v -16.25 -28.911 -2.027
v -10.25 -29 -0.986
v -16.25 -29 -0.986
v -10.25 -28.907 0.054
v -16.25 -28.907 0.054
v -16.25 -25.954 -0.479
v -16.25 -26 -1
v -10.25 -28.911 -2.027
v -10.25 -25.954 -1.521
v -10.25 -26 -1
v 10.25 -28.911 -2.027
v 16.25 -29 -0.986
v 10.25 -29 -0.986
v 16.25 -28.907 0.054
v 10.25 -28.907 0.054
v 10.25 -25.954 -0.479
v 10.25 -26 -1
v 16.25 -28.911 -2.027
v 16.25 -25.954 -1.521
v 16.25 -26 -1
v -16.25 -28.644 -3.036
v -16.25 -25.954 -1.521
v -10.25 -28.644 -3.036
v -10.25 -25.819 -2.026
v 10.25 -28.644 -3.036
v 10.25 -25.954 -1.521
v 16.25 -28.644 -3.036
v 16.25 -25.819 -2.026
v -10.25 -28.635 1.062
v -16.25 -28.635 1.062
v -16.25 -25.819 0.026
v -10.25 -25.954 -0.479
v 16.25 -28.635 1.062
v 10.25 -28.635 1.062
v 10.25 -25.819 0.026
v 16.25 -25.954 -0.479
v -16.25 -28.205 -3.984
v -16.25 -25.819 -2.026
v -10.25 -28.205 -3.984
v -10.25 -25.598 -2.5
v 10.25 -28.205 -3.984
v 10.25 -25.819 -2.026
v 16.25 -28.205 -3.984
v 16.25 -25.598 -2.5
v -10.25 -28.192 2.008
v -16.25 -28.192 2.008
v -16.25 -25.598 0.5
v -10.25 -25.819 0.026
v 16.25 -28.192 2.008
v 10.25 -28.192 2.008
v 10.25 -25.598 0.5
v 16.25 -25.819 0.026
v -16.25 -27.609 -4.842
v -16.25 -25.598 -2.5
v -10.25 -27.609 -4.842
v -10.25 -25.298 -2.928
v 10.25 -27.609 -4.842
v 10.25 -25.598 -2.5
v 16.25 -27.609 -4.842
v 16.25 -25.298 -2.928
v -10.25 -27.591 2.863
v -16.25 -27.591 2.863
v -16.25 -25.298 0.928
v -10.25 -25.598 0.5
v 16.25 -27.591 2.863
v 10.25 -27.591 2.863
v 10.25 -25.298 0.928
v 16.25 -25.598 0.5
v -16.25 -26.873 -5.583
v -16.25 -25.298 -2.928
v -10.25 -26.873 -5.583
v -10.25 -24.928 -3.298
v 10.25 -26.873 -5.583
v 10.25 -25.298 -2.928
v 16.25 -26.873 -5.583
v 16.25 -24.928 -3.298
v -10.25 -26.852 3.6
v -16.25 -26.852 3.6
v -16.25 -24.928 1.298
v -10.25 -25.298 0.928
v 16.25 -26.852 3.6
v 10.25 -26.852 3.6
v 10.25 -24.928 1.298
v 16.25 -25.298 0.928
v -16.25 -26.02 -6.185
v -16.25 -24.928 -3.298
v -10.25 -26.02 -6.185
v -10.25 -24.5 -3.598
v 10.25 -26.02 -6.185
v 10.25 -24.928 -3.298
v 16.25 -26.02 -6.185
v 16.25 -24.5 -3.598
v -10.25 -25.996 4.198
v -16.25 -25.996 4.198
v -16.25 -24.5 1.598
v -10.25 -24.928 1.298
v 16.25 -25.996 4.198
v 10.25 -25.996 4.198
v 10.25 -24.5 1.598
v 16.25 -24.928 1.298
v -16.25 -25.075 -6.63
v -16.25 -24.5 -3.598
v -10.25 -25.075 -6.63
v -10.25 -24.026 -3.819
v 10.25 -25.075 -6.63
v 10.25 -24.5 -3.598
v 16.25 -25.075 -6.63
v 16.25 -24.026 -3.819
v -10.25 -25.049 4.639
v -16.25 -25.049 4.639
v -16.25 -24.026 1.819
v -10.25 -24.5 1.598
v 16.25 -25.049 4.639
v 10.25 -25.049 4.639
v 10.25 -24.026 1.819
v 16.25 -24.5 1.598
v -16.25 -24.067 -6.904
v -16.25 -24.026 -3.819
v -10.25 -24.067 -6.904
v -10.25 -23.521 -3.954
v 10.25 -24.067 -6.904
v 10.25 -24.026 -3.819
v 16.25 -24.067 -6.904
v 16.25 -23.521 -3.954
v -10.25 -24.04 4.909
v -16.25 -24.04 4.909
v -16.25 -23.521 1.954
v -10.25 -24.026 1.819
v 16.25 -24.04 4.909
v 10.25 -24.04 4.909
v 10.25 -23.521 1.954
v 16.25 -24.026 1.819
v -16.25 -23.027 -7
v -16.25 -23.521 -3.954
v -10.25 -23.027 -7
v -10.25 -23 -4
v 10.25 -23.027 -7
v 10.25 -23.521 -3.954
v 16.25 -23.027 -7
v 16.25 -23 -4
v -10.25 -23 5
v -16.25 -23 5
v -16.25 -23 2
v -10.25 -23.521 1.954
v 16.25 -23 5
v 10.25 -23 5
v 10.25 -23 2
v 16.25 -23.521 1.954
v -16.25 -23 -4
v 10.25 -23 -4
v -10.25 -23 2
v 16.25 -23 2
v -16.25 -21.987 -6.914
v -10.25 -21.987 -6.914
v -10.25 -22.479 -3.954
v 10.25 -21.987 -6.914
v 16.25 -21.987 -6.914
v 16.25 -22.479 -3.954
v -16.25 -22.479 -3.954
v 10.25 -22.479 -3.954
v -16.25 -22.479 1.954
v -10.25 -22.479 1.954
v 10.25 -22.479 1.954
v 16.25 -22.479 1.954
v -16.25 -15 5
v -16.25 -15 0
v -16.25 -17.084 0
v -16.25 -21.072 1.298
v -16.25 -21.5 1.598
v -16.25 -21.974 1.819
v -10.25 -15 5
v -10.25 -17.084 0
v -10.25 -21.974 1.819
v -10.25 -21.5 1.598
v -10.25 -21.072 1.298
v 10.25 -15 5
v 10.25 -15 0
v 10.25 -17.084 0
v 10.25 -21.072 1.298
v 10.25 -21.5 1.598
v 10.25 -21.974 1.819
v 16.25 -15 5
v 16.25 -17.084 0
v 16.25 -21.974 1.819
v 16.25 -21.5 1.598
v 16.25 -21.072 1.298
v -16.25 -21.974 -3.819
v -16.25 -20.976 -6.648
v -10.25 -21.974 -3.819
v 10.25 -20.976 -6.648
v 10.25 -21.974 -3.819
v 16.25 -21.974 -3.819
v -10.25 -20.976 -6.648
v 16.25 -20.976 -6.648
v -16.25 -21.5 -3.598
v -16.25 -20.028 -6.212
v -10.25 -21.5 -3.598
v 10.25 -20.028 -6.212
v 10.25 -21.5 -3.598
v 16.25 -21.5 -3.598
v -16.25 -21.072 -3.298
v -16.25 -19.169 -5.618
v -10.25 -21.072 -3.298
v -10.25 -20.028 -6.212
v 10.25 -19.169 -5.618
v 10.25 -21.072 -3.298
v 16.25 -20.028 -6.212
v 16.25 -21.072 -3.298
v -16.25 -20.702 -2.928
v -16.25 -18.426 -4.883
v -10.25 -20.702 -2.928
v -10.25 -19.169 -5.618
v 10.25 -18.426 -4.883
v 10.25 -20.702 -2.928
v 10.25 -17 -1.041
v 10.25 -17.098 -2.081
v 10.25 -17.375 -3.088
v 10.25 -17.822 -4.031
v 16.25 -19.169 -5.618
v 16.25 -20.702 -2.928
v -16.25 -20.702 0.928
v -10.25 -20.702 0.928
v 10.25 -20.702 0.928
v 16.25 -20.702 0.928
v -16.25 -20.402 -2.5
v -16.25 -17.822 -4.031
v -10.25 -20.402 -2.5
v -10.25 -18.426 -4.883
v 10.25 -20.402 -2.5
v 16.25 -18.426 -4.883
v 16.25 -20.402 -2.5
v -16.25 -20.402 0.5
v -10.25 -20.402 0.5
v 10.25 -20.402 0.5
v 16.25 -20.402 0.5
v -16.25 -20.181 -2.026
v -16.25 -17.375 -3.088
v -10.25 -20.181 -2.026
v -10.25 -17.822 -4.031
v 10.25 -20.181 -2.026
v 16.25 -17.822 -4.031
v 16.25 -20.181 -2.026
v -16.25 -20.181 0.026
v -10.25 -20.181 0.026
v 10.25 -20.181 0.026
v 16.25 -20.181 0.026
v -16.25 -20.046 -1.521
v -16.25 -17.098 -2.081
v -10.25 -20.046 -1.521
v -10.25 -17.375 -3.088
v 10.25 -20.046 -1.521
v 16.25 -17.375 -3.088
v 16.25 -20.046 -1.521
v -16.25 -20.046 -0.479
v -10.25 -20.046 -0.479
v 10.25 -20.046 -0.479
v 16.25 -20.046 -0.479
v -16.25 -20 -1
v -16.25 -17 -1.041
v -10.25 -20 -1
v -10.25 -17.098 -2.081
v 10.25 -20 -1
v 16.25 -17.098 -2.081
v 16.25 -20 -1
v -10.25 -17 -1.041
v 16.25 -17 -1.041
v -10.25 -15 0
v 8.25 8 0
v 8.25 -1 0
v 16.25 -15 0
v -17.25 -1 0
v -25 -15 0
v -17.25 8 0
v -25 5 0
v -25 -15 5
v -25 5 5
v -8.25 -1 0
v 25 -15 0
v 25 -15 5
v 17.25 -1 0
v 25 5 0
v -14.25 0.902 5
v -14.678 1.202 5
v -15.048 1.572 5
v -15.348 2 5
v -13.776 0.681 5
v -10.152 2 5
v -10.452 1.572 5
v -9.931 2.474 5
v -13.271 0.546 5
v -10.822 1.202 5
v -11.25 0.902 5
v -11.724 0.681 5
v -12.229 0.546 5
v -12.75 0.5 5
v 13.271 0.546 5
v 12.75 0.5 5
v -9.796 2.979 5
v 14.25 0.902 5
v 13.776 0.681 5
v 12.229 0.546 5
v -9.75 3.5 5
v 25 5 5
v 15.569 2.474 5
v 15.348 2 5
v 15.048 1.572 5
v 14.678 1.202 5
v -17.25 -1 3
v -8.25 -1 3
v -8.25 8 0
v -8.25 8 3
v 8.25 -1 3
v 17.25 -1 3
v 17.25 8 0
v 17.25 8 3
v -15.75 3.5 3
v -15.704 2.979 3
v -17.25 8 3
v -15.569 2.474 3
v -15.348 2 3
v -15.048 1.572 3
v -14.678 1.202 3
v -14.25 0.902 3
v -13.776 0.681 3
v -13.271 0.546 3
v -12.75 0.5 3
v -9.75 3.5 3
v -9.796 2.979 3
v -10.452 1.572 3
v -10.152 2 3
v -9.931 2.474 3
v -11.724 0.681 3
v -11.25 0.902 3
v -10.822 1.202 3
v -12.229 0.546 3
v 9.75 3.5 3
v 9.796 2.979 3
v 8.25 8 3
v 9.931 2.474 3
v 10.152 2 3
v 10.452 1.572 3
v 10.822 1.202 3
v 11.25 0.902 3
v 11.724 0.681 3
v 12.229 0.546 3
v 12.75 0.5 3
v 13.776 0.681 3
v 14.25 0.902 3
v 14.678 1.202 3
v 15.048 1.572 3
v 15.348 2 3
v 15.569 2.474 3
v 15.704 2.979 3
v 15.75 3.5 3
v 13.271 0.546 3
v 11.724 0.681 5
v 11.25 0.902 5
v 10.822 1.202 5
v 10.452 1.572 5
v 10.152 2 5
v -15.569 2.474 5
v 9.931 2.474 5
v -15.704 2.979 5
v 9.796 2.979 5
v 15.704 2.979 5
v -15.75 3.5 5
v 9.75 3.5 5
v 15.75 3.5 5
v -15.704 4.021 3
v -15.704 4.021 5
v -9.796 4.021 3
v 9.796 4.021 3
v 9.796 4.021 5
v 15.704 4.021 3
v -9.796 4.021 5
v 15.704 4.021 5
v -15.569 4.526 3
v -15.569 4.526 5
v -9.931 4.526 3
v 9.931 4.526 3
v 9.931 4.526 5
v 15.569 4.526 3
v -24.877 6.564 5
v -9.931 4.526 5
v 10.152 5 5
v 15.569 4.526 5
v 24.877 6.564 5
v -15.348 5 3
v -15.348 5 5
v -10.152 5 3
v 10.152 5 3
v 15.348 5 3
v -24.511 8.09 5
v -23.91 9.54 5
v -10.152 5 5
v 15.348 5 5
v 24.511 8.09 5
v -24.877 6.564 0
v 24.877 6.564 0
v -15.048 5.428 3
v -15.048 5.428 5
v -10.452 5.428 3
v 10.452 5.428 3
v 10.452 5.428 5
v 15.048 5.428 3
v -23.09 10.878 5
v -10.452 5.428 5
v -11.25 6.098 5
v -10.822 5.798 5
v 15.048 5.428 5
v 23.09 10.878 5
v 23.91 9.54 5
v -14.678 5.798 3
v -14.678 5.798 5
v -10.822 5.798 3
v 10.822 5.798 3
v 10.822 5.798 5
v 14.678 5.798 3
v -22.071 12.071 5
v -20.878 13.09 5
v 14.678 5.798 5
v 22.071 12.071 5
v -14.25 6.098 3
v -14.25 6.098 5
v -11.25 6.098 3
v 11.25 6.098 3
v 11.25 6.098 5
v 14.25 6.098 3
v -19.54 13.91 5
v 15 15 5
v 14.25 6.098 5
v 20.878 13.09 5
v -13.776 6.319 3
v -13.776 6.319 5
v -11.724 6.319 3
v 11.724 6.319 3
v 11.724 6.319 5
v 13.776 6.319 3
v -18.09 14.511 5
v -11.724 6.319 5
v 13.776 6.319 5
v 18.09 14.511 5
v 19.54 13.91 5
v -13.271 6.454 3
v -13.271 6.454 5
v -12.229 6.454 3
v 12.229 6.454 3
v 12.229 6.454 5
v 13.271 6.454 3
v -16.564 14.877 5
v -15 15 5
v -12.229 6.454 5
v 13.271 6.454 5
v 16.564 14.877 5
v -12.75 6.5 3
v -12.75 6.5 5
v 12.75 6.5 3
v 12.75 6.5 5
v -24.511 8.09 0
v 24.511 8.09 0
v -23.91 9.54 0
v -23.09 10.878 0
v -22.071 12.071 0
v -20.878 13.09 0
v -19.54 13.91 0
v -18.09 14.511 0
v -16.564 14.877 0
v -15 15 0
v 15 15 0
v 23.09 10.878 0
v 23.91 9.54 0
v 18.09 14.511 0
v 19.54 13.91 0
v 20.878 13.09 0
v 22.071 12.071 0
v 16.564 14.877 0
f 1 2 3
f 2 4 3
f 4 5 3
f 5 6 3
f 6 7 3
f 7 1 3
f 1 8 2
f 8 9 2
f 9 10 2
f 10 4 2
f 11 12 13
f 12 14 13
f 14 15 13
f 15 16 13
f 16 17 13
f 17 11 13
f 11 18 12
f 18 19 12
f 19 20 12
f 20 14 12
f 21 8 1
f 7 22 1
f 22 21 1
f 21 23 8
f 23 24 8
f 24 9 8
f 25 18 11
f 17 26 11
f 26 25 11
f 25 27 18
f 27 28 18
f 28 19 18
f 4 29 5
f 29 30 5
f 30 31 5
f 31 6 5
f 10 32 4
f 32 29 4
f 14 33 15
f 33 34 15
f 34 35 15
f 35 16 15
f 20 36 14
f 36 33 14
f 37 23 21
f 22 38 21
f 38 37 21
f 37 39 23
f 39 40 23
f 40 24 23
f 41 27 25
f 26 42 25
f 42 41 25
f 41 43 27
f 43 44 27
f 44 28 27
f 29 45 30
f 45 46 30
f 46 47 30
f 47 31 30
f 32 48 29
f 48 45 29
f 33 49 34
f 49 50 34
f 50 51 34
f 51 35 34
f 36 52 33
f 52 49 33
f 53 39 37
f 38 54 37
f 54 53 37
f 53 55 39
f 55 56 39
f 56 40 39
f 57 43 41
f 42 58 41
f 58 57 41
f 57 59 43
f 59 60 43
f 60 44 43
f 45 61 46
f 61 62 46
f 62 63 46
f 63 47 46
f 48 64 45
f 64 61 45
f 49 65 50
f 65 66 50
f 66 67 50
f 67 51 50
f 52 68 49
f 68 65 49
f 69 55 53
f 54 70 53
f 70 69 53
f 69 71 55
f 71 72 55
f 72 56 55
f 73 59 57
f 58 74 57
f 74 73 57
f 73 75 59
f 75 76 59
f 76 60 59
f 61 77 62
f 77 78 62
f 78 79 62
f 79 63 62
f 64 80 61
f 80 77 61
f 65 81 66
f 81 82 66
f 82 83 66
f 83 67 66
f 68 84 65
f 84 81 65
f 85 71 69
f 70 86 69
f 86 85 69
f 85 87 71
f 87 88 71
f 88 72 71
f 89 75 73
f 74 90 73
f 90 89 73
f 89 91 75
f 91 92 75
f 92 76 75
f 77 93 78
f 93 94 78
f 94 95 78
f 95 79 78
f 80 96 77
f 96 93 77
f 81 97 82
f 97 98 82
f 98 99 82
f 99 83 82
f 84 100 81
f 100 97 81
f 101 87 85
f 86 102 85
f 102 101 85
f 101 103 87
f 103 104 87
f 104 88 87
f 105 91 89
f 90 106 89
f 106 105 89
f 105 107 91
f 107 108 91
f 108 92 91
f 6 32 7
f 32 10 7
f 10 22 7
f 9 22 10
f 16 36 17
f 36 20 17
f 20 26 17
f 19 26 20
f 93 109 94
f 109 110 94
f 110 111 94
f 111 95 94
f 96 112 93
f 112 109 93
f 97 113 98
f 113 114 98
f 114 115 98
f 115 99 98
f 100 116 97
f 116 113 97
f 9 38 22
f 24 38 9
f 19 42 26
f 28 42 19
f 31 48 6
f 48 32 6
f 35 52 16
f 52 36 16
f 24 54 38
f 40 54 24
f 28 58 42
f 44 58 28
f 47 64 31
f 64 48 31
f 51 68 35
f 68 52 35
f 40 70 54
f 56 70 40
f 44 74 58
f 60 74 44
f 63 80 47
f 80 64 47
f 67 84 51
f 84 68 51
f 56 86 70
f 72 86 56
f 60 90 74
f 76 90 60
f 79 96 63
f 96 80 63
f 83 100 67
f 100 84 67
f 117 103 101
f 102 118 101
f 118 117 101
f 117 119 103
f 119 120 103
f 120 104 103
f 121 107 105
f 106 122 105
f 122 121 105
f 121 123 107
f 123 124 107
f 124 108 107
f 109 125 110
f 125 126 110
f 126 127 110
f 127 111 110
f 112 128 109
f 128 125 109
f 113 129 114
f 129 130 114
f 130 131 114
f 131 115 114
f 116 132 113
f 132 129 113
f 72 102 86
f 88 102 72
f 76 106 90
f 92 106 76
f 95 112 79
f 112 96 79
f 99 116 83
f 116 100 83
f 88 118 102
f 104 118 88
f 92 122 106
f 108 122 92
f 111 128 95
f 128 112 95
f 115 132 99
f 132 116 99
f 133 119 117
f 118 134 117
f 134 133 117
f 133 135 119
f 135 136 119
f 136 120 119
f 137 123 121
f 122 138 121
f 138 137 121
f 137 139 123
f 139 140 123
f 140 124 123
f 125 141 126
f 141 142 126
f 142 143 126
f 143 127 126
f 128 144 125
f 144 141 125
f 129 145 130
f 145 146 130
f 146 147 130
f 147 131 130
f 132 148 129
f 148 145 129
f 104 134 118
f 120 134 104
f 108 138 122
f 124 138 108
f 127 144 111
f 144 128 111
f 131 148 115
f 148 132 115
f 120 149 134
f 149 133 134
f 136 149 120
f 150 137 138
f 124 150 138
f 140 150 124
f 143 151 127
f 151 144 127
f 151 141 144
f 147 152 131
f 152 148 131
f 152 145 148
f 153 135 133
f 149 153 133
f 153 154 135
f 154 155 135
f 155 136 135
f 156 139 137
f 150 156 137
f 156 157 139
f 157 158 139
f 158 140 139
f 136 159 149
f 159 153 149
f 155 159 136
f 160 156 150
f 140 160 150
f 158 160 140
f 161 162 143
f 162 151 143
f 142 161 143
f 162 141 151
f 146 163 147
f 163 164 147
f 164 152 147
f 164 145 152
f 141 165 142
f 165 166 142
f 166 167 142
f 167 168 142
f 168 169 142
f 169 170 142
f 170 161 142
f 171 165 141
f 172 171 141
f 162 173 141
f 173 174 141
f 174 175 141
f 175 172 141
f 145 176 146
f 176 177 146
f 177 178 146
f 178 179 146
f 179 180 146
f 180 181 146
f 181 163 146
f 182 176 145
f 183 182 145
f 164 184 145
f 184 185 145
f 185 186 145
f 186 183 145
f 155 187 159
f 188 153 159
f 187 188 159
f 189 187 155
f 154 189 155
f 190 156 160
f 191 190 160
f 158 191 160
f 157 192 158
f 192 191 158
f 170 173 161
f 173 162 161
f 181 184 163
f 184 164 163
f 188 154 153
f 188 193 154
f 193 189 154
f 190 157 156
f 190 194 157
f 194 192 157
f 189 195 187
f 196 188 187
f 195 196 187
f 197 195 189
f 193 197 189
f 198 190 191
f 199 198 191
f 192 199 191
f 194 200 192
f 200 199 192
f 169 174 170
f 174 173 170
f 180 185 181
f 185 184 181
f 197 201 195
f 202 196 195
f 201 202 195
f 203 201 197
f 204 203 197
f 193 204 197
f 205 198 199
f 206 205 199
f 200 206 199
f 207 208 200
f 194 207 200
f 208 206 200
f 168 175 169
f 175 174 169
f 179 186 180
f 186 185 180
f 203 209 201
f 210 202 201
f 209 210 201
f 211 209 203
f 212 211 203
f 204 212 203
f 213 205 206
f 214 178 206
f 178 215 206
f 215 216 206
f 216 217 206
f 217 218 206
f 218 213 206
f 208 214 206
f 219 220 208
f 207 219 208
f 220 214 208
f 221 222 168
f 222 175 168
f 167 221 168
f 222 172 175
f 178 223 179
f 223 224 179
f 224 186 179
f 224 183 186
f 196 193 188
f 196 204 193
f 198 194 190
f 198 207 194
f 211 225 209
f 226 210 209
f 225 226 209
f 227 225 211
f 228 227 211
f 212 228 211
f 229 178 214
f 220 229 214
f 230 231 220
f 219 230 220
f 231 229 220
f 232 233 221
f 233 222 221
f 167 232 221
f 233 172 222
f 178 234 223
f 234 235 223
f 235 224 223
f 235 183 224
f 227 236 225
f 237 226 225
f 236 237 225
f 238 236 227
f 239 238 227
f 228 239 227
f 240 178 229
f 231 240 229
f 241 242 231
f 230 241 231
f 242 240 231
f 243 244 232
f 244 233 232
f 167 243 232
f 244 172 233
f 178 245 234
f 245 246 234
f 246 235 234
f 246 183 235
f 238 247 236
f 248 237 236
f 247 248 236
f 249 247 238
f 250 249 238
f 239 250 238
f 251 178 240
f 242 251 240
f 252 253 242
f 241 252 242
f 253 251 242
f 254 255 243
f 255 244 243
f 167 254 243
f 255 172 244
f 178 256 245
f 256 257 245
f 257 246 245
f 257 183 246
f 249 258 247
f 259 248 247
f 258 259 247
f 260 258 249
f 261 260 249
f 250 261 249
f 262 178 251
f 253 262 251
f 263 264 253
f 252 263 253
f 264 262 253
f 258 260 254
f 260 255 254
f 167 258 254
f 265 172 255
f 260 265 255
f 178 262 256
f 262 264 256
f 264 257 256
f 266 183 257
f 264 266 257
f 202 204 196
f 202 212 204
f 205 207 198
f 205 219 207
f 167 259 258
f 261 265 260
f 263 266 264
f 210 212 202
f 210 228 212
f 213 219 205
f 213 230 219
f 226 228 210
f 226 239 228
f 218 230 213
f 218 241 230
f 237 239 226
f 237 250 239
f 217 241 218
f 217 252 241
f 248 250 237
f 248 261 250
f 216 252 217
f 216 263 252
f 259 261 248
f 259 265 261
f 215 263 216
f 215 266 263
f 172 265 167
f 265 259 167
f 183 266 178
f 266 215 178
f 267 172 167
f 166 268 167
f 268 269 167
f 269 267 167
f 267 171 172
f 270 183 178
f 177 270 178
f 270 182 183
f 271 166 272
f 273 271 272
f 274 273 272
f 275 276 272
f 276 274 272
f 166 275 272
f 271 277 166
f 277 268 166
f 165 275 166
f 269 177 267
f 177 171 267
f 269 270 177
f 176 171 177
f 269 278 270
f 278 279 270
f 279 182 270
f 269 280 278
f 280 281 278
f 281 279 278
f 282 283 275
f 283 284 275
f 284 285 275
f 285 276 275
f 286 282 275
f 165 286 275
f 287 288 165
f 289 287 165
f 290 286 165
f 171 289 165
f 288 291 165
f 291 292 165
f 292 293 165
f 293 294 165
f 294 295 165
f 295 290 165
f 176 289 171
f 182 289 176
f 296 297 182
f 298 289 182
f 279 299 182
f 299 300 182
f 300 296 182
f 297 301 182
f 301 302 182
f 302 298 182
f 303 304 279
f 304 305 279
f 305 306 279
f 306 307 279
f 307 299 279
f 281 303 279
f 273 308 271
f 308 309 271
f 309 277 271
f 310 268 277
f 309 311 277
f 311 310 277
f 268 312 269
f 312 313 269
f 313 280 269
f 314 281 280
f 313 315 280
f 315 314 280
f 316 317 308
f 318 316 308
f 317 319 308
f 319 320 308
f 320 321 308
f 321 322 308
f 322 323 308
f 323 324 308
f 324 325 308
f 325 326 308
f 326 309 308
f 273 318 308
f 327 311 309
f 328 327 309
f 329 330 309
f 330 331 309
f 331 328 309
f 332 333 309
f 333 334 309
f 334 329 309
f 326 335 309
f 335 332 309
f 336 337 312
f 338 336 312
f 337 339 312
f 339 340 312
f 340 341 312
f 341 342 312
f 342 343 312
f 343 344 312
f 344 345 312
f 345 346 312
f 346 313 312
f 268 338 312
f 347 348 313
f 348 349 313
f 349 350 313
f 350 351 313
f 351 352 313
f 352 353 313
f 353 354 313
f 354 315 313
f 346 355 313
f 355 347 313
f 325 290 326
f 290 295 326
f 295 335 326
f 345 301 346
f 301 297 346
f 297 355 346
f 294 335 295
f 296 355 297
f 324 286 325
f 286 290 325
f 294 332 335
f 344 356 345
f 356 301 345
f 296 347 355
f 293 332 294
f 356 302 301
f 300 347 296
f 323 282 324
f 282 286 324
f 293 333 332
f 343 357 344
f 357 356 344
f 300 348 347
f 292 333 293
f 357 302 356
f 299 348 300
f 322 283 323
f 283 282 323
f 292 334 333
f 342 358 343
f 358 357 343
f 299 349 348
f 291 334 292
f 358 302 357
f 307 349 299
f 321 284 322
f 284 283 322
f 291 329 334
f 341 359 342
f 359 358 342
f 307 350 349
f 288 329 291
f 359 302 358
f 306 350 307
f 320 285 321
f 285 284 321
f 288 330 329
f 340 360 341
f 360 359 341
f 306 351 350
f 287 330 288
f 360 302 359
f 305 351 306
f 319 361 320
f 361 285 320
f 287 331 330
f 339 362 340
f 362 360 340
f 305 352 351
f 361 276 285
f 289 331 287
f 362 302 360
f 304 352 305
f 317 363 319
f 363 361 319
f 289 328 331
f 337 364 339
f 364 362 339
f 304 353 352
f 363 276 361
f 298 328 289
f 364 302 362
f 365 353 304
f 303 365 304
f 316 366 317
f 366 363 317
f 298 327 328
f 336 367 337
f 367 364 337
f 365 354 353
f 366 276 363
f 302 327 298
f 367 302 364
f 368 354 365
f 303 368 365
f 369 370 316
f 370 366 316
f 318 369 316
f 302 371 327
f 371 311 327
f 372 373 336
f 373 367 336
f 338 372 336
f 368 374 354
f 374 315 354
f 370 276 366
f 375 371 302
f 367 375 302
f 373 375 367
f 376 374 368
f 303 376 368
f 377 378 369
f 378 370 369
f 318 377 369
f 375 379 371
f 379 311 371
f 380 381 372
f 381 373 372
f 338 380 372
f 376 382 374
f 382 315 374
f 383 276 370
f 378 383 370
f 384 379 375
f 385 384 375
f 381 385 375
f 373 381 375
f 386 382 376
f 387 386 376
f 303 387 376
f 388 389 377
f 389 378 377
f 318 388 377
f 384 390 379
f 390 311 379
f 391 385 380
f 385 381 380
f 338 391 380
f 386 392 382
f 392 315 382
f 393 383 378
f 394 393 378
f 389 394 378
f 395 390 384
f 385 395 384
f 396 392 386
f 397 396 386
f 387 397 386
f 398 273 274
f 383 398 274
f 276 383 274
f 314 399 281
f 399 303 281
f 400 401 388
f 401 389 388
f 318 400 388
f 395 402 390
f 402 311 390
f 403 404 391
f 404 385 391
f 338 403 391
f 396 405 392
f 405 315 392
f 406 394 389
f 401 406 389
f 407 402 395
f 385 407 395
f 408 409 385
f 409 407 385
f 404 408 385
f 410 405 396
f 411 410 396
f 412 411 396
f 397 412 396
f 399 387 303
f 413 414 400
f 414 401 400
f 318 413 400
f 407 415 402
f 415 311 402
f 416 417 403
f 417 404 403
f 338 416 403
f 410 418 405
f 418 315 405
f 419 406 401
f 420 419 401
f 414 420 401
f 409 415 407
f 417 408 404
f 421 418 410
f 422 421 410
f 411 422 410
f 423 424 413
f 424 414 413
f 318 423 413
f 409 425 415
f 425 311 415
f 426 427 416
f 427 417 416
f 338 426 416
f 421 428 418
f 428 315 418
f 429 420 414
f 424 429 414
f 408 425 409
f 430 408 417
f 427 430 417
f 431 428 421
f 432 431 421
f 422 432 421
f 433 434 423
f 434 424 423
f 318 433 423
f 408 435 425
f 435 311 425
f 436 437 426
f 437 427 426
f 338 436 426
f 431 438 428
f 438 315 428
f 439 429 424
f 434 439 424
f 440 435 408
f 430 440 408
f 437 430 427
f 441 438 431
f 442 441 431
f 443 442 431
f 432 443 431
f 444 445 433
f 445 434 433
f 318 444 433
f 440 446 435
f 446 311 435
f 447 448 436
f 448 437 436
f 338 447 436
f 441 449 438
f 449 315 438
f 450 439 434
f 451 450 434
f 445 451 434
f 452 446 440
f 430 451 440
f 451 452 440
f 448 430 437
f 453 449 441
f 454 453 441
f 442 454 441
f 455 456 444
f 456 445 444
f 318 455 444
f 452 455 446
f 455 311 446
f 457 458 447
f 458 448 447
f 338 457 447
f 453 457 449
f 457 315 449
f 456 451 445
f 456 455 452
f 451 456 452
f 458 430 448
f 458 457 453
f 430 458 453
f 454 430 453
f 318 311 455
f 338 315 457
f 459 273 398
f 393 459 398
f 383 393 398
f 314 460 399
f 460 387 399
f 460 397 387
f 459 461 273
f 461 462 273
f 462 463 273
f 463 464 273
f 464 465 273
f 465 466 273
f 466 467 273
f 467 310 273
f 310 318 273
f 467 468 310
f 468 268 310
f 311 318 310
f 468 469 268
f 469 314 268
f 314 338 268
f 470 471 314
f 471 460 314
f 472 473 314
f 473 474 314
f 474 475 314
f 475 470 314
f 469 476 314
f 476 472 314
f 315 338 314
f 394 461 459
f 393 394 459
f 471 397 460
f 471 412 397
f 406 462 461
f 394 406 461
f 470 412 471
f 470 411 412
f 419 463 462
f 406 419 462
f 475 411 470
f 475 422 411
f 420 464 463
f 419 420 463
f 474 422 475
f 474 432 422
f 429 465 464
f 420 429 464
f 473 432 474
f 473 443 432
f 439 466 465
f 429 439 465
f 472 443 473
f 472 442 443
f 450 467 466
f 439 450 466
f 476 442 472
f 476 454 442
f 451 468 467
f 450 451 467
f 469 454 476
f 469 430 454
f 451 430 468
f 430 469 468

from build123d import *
from build123d.topology import SkipClean

# Parameters (mm, degrees)
SALIENTE_EXTRUIR1_DEPTH    = 5
CROQUIS4_W                 = 6
CROQUIS4_H                 = 13
SALIENTE_EXTRUIR2_DEPTH    = 5
SALIENTE_EXTRUIR3_REACH    = 52.106
CROQUIS6_R                 = 6
CROQUIS6_R_2               = 3
CORTAR_EXTRUIR1_DEPTH      = 51.907391408
CORTAR_EXTRUIR1_DEPTH_BACK = 51.907391408
CORTAR_EXTRUIR2_DEPTH      = 39.923000912
CORTAR_EXTRUIR2_DEPTH_BACK = 39.923000912
CROQUIS8_W                 = 20.5
CROQUIS8_H                 = 15.513520957
CROQUIS9_R                 = 3
CORTAR_EXTRUIR3_DEPTH      = 6
CROQUIS10_W                = 9
CROQUIS10_H                = 9
CORTAR_EXTRUIR4_DEPTH      = 3


with BuildPart() as part:
    # Croquis1 → Saliente-Extruir1 (new body)
    with BuildSketch(Plane.XY):
        with BuildLine():
            Line((15, 15), (-15, 15))
            ThreePointArc((-15, 15), (-22.071067812, 12.071067812), (-25, 5))
            Line((-25, 5), (-25, -15))
            Line((-25, -15), (25, -15))
            Line((25, -15), (25, 5))
            ThreePointArc((25, 5), (22.071067812, 12.071067812), (15, 15))
        make_face()
    extrude(amount=SALIENTE_EXTRUIR1_DEPTH)

    # Croquis4 → Saliente-Extruir2 (add)
    with BuildSketch(Plane.XY.offset(5)):
        with Locations((-13.25, -21.5)):
            Rectangle(CROQUIS4_W, CROQUIS4_H)
        with Locations((13.25, -21.5)):
            Rectangle(CROQUIS4_W, CROQUIS4_H)
    extrude(amount=-SALIENTE_EXTRUIR2_DEPTH)

    # Saliente-Extruir3: up to this face of the body (flat: up to its plane)
    saliente_extruir3_end = Plane(part.part.faces().sort_by_distance((-16.25, -21.5, 2.5))[0])
    # Croquis6 → Saliente-Extruir3 (add, up to the picked face)
    with BuildSketch(Plane(origin=(16.25, 0, 0), x_dir=(0, 0, -1), z_dir=(1, 0, 0)), mode=Mode.PRIVATE) as saliente_extruir3_sk1:
        with Locations(Location((1, -23, 0), (0, 0, 99.594068227))):
            Circle(CROQUIS6_R)
        with Locations(Location((1, -23, 0), (0, 0, 109.471220634))):
            Circle(CROQUIS6_R_2, mode=Mode.SUBTRACT)
    saliente_extruir3_tool1 = split(extrude(saliente_extruir3_sk1.sketch, amount=-SALIENTE_EXTRUIR3_REACH, mode=Mode.PRIVATE), bisect_by=saliente_extruir3_end, keep=Keep.BOTH, mode=Mode.PRIVATE)
    add(saliente_extruir3_tool1.solids().sort_by(Axis((16.25, -28.748748, -1.971716), (-1, 0, 0)))[0])

    # Croquis7 → Cortar-Extruir1 (cut, two sides: drawn at the far end of the back side and taken through both)
    with SkipClean():  # the faces are left unmerged after this step: merging them gives an invalid solid
        with BuildSketch(Plane.ZY.offset(16.25).offset(-CORTAR_EXTRUIR1_DEPTH_BACK)):
            with BuildLine():
                Line((0, -20.171572875), (0, -25.828427125))
                ThreePointArc((0, -25.828427125), (-4, -23), (0, -20.171572875))
            make_face()
            with BuildLine():
                ThreePointArc((0, -25.828427125), (1.449489743, -24.732050808), (2, -23))
                ThreePointArc((2, -23), (1.449489743, -21.267949192), (0, -20.171572875))
                Line((0, -20.171572875), (0, -25.828427125))
            make_face()
            with BuildLine():
                Line((0, -25.828427125), (0, -20.171572875))
                ThreePointArc((0, -20.171572875), (-4, -23), (0, -25.828427125))
            make_face()
            with BuildLine():
                Line((5, -28), (5, -23))
                ThreePointArc((5, -23), (4.286764074, -25.837274331), (2.31662479, -28))
                Line((2.31662479, -28), (5, -28))
            make_face()
        extrude(amount=CORTAR_EXTRUIR1_DEPTH + CORTAR_EXTRUIR1_DEPTH_BACK, mode=Mode.SUBTRACT)

    # Croquis8 → Cortar-Extruir2 (cut, two sides: drawn at the far end of the back side and taken through both)
    with BuildSketch(Plane(origin=(0, 0, 0), x_dir=(-1, 0, 0), z_dir=(0, 0, -1)).offset(-CORTAR_EXTRUIR2_DEPTH_BACK)):
        with Locations((0, -22.756760479)):
            Rectangle(CROQUIS8_W, CROQUIS8_H)
    extrude(amount=CORTAR_EXTRUIR2_DEPTH + CORTAR_EXTRUIR2_DEPTH_BACK, mode=Mode.SUBTRACT)

    # Croquis9 → Cortar-Extruir3 (cut)
    with BuildSketch(Plane.XY.offset(5)):
        with Locations((-12.75, 3.5)):
            Circle(CROQUIS9_R)
        with Locations((12.75, 3.5)):
            Circle(CROQUIS9_R)
    extrude(amount=-CORTAR_EXTRUIR3_DEPTH, mode=Mode.SUBTRACT)

    # Croquis10 → Cortar-Extruir4 (cut)
    with BuildSketch(Plane(origin=(0, 0, 0), x_dir=(-1, 0, 0), z_dir=(0, 0, -1))):
        with Locations((-12.75, 3.5)):
            Rectangle(CROQUIS10_W, CROQUIS10_H)
        with Locations((12.75, 3.5)):
            Rectangle(CROQUIS10_W, CROQUIS10_H)
    extrude(amount=-CORTAR_EXTRUIR4_DEPTH, mode=Mode.SUBTRACT)


solid = part.part
